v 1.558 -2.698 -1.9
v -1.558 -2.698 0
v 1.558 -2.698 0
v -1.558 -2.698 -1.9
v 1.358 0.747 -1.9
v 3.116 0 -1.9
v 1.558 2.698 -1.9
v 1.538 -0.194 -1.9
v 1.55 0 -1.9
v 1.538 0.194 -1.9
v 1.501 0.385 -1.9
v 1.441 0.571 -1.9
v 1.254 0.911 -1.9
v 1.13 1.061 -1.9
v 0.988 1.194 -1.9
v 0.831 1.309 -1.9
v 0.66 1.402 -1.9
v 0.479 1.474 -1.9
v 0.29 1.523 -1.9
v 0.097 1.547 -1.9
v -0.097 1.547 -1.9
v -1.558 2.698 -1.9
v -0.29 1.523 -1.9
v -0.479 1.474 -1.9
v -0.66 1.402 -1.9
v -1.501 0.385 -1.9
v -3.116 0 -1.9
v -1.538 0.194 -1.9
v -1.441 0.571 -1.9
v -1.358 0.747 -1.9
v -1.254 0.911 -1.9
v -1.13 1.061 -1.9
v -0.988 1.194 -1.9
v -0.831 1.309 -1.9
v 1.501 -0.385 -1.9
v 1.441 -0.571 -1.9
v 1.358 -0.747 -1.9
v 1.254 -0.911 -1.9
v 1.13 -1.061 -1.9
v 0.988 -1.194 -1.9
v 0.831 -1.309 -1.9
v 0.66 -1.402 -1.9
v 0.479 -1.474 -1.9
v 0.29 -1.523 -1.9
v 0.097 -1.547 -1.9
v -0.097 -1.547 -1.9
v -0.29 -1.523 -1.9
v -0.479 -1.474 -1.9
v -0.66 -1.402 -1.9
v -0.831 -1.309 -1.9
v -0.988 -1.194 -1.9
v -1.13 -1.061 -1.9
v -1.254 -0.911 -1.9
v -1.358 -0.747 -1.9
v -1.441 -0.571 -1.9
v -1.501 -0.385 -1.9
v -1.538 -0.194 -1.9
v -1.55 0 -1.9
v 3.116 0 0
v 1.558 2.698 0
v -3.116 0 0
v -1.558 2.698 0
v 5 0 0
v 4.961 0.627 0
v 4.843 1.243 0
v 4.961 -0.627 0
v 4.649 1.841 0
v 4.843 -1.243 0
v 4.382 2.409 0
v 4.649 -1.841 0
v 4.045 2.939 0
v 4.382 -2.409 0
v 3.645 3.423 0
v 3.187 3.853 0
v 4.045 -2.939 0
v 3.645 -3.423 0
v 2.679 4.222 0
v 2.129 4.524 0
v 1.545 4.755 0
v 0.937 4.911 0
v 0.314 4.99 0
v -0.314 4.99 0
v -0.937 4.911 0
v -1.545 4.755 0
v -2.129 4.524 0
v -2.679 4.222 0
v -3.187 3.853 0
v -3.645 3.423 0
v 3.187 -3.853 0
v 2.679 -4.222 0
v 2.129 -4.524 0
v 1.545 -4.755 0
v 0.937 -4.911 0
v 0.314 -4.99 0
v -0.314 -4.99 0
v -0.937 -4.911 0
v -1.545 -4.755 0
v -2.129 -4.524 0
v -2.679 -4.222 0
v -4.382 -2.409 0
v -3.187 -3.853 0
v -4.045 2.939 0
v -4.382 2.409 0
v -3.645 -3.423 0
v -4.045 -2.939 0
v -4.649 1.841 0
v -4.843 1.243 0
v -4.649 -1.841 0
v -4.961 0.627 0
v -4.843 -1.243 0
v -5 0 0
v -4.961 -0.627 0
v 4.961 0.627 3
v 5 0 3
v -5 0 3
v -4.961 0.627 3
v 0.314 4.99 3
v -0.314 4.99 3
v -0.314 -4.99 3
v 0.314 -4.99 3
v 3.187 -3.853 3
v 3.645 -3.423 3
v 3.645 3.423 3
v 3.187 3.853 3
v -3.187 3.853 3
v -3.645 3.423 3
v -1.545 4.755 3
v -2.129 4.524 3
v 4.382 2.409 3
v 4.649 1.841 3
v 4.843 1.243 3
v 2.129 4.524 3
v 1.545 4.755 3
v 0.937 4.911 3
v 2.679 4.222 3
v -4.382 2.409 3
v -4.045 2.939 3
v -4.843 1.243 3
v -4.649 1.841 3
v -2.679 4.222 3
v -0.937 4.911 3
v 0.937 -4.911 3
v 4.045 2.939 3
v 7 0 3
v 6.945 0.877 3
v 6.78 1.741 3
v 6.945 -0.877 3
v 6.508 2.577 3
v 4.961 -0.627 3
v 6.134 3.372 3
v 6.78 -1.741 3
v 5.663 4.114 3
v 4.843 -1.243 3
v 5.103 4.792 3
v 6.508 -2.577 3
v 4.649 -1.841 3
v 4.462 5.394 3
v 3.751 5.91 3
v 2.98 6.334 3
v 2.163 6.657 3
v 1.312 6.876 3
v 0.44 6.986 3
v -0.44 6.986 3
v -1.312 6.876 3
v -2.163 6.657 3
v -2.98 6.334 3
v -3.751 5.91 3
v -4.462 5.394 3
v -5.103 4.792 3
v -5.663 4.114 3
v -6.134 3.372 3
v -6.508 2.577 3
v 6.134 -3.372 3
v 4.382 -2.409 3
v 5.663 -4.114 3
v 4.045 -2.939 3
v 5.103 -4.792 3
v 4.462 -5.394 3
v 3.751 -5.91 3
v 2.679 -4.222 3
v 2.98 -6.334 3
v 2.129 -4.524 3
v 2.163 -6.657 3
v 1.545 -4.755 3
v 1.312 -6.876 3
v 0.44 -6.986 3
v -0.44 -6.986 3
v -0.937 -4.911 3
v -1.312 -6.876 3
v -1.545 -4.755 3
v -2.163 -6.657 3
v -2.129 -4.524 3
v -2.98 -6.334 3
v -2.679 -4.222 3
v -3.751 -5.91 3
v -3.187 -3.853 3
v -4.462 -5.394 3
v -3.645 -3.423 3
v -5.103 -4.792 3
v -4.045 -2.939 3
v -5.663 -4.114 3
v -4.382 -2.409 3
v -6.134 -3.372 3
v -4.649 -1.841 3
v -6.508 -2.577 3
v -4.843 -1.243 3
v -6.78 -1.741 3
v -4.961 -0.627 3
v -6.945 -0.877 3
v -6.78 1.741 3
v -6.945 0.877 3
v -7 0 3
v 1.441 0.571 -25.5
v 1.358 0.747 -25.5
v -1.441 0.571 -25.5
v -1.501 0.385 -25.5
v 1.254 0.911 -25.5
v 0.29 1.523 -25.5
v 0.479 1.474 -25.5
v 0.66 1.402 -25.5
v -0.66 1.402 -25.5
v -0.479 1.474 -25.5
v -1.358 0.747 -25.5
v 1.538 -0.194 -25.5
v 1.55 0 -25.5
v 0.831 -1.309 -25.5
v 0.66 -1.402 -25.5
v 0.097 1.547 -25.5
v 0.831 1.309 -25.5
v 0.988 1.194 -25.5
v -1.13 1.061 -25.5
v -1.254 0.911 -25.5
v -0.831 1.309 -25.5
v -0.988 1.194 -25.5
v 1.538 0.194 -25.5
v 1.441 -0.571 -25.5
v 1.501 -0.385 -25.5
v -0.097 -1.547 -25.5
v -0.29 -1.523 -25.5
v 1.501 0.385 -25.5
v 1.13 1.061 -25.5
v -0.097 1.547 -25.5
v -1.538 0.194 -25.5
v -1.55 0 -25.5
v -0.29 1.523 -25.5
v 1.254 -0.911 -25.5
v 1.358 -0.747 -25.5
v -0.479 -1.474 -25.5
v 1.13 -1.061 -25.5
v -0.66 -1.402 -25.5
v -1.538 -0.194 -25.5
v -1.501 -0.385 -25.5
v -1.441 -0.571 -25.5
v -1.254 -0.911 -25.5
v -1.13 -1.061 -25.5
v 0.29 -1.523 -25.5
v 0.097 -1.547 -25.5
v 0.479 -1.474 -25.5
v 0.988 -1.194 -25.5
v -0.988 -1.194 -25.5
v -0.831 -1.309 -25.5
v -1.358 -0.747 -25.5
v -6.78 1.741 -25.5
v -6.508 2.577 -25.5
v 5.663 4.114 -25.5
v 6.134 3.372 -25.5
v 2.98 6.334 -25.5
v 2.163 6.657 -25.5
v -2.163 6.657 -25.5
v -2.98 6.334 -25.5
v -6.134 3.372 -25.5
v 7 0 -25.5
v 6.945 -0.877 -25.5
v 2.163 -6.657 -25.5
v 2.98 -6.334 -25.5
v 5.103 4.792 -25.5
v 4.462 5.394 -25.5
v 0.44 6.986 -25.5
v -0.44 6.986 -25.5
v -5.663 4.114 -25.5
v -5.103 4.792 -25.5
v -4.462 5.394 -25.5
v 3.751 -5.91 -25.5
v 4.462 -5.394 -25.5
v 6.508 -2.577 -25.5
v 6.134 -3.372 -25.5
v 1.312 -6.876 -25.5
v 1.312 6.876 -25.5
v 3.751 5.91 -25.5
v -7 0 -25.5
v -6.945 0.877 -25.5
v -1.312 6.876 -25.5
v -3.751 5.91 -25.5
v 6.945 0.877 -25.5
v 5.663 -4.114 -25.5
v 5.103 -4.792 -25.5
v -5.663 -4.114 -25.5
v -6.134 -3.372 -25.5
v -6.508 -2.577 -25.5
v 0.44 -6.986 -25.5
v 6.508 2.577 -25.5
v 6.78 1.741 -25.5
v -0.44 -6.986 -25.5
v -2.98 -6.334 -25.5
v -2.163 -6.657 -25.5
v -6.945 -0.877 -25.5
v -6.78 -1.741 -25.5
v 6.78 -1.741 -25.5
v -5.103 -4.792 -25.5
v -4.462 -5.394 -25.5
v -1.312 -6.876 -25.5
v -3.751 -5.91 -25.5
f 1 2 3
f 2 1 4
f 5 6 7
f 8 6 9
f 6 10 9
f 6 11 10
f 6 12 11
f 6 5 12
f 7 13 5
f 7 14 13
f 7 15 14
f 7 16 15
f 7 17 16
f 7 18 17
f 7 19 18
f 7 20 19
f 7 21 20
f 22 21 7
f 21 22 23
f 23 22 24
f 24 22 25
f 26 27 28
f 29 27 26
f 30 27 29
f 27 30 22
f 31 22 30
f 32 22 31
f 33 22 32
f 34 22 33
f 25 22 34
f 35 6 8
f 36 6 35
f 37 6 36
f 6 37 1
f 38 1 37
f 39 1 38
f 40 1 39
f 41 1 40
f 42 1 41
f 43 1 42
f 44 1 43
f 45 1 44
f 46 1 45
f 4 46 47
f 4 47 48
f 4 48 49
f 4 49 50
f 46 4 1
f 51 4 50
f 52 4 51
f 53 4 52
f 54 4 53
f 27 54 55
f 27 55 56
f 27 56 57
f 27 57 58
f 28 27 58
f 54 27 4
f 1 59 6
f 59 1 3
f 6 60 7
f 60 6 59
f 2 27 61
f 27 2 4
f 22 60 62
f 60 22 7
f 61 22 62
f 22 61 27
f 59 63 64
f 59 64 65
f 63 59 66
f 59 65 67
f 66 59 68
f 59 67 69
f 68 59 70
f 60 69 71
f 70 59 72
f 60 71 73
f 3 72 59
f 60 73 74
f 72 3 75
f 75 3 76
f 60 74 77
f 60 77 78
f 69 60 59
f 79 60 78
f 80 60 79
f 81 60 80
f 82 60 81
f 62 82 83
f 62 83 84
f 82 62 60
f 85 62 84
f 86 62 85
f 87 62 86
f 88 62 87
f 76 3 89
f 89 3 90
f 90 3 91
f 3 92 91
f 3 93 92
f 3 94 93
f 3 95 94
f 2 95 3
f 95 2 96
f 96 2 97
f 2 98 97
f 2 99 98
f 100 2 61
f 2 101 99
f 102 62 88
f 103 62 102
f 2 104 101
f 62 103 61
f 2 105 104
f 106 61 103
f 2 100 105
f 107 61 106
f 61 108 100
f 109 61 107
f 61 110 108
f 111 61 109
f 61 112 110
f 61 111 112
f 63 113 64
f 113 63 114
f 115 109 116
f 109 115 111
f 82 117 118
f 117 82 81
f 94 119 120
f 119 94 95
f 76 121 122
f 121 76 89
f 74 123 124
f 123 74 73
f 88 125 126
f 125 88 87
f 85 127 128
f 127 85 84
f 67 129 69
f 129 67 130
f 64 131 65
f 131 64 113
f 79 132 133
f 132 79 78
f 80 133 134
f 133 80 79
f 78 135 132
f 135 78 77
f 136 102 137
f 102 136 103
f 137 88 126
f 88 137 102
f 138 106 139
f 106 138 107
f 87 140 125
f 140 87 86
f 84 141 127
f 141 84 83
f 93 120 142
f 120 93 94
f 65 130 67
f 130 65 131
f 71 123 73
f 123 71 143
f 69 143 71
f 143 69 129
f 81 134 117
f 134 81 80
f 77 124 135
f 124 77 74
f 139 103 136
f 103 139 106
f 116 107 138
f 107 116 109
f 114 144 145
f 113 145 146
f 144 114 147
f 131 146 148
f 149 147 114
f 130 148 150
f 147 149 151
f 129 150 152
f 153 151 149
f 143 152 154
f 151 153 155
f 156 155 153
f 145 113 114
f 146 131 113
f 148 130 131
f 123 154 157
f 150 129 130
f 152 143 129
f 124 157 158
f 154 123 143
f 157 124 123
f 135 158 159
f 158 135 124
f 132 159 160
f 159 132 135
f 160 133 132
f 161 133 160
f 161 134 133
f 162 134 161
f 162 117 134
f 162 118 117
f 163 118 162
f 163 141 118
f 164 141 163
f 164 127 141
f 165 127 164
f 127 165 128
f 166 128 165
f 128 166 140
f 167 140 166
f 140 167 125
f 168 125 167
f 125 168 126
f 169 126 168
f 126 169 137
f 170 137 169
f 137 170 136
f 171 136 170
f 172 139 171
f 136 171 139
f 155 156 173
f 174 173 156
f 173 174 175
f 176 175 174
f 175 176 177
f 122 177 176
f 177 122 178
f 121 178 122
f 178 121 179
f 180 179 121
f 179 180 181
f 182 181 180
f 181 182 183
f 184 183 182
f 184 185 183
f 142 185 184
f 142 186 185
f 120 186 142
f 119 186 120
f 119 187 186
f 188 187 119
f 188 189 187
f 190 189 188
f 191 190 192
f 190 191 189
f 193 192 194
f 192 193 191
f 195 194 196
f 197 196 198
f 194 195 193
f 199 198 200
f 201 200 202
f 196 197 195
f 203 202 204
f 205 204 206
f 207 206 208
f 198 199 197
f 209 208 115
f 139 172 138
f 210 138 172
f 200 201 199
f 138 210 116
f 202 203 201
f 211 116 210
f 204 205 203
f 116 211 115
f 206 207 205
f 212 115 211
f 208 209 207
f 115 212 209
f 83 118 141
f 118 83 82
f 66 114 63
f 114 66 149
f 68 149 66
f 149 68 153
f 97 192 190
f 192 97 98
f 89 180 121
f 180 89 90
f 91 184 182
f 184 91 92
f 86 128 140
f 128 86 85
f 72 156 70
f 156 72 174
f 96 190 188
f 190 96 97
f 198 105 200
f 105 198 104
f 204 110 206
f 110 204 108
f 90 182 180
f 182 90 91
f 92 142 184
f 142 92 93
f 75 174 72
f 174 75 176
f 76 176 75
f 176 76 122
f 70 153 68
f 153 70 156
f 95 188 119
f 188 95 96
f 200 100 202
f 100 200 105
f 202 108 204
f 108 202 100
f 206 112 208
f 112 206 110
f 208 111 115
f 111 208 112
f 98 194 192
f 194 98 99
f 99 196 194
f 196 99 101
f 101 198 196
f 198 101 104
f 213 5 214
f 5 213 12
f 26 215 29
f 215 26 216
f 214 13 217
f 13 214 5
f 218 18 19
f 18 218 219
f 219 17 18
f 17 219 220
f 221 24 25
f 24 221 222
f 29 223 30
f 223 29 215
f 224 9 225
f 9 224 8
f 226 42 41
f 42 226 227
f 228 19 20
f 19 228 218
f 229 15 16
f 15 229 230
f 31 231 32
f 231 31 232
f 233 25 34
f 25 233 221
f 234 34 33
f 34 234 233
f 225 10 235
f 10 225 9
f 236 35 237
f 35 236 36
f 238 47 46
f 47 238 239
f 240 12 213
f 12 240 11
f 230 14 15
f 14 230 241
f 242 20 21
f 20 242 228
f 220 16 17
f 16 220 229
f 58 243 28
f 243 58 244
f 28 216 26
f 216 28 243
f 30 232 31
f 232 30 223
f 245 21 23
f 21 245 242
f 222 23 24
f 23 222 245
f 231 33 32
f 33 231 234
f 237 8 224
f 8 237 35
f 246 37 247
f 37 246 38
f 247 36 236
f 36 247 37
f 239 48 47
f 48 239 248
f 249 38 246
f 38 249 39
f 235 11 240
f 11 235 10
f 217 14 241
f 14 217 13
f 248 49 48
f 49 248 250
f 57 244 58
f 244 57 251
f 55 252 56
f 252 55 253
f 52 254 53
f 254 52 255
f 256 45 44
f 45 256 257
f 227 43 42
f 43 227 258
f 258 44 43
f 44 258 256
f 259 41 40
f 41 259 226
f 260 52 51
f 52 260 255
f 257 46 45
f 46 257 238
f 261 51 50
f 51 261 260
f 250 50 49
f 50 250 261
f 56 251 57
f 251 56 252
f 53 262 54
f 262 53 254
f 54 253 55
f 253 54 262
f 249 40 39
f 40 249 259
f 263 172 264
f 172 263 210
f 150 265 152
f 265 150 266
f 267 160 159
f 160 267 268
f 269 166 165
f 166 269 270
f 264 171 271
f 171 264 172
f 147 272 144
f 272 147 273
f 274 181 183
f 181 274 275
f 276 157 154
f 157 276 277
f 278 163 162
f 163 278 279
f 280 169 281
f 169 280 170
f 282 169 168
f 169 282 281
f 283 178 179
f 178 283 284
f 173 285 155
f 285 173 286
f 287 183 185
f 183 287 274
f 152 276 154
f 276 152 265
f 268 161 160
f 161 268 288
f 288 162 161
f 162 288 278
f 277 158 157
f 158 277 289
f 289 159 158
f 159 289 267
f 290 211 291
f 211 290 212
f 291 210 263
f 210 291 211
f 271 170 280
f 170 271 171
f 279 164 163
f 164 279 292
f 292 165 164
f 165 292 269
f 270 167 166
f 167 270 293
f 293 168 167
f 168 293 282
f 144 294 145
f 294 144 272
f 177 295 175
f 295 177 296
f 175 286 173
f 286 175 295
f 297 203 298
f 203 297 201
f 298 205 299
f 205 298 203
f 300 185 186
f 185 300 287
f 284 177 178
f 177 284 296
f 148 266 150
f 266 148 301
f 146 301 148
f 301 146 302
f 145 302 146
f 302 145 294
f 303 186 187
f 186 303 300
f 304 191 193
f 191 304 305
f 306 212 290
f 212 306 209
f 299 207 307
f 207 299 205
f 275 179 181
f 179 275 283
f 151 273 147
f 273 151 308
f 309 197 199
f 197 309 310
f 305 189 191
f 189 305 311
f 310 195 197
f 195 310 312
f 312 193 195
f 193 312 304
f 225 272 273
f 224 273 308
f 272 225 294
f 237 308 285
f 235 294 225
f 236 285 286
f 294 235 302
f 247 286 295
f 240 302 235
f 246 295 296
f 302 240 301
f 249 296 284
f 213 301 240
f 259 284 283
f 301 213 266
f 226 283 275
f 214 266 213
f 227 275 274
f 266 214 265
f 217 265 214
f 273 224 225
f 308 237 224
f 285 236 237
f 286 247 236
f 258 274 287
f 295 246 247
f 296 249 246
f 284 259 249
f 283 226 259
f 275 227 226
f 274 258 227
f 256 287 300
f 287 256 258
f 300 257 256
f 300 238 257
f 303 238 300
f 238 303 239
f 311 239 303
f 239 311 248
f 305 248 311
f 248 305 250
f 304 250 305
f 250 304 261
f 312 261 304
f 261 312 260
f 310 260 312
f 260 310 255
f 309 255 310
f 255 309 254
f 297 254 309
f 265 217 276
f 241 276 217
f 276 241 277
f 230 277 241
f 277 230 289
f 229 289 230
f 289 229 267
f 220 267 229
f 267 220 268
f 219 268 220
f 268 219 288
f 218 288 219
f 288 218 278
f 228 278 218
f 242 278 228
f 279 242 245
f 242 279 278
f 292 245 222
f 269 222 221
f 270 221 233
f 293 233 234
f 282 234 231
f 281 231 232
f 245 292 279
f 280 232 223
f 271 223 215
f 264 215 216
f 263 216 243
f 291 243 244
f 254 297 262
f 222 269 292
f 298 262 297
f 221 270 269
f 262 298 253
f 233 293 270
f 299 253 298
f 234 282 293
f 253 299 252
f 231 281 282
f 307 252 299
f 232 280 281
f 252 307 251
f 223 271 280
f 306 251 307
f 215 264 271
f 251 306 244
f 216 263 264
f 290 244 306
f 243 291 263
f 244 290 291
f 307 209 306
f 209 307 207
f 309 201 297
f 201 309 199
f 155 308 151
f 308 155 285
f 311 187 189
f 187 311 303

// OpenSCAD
$fn = 50;


difference() {
	union() {
		translate(v = [0, 0, -25.5000000000]) {
			cylinder(h = 28.5000000000, r = 7.0000000000);
		}
	}
	union() {
		translate(v = [0, 0, 0]) {
			rotate(a = [0, 0, 0]) {
				difference() {
					union() {
						translate(v = [0, 0, -1.9000000000]) {
							linear_extrude(height = 1.9000000000) {
								polygon(points = [[3.1158000000, 0.0000000000], [1.5579000000, 2.6983619531], [-1.5579000000, 2.6983619531], [-3.1158000000, 0.0000000000], [-1.5579000000, -2.6983619531], [1.5579000000, -2.6983619531]]);
							}
						}
					}
					union();
				}
			}
		}
		#cylinder(h = 3, r = 5.0000000000);
		#translate(v = [0, 0, -100.0000000000]) {
			cylinder(h = 200, r = 1.5500000000);
		}
	}
}
